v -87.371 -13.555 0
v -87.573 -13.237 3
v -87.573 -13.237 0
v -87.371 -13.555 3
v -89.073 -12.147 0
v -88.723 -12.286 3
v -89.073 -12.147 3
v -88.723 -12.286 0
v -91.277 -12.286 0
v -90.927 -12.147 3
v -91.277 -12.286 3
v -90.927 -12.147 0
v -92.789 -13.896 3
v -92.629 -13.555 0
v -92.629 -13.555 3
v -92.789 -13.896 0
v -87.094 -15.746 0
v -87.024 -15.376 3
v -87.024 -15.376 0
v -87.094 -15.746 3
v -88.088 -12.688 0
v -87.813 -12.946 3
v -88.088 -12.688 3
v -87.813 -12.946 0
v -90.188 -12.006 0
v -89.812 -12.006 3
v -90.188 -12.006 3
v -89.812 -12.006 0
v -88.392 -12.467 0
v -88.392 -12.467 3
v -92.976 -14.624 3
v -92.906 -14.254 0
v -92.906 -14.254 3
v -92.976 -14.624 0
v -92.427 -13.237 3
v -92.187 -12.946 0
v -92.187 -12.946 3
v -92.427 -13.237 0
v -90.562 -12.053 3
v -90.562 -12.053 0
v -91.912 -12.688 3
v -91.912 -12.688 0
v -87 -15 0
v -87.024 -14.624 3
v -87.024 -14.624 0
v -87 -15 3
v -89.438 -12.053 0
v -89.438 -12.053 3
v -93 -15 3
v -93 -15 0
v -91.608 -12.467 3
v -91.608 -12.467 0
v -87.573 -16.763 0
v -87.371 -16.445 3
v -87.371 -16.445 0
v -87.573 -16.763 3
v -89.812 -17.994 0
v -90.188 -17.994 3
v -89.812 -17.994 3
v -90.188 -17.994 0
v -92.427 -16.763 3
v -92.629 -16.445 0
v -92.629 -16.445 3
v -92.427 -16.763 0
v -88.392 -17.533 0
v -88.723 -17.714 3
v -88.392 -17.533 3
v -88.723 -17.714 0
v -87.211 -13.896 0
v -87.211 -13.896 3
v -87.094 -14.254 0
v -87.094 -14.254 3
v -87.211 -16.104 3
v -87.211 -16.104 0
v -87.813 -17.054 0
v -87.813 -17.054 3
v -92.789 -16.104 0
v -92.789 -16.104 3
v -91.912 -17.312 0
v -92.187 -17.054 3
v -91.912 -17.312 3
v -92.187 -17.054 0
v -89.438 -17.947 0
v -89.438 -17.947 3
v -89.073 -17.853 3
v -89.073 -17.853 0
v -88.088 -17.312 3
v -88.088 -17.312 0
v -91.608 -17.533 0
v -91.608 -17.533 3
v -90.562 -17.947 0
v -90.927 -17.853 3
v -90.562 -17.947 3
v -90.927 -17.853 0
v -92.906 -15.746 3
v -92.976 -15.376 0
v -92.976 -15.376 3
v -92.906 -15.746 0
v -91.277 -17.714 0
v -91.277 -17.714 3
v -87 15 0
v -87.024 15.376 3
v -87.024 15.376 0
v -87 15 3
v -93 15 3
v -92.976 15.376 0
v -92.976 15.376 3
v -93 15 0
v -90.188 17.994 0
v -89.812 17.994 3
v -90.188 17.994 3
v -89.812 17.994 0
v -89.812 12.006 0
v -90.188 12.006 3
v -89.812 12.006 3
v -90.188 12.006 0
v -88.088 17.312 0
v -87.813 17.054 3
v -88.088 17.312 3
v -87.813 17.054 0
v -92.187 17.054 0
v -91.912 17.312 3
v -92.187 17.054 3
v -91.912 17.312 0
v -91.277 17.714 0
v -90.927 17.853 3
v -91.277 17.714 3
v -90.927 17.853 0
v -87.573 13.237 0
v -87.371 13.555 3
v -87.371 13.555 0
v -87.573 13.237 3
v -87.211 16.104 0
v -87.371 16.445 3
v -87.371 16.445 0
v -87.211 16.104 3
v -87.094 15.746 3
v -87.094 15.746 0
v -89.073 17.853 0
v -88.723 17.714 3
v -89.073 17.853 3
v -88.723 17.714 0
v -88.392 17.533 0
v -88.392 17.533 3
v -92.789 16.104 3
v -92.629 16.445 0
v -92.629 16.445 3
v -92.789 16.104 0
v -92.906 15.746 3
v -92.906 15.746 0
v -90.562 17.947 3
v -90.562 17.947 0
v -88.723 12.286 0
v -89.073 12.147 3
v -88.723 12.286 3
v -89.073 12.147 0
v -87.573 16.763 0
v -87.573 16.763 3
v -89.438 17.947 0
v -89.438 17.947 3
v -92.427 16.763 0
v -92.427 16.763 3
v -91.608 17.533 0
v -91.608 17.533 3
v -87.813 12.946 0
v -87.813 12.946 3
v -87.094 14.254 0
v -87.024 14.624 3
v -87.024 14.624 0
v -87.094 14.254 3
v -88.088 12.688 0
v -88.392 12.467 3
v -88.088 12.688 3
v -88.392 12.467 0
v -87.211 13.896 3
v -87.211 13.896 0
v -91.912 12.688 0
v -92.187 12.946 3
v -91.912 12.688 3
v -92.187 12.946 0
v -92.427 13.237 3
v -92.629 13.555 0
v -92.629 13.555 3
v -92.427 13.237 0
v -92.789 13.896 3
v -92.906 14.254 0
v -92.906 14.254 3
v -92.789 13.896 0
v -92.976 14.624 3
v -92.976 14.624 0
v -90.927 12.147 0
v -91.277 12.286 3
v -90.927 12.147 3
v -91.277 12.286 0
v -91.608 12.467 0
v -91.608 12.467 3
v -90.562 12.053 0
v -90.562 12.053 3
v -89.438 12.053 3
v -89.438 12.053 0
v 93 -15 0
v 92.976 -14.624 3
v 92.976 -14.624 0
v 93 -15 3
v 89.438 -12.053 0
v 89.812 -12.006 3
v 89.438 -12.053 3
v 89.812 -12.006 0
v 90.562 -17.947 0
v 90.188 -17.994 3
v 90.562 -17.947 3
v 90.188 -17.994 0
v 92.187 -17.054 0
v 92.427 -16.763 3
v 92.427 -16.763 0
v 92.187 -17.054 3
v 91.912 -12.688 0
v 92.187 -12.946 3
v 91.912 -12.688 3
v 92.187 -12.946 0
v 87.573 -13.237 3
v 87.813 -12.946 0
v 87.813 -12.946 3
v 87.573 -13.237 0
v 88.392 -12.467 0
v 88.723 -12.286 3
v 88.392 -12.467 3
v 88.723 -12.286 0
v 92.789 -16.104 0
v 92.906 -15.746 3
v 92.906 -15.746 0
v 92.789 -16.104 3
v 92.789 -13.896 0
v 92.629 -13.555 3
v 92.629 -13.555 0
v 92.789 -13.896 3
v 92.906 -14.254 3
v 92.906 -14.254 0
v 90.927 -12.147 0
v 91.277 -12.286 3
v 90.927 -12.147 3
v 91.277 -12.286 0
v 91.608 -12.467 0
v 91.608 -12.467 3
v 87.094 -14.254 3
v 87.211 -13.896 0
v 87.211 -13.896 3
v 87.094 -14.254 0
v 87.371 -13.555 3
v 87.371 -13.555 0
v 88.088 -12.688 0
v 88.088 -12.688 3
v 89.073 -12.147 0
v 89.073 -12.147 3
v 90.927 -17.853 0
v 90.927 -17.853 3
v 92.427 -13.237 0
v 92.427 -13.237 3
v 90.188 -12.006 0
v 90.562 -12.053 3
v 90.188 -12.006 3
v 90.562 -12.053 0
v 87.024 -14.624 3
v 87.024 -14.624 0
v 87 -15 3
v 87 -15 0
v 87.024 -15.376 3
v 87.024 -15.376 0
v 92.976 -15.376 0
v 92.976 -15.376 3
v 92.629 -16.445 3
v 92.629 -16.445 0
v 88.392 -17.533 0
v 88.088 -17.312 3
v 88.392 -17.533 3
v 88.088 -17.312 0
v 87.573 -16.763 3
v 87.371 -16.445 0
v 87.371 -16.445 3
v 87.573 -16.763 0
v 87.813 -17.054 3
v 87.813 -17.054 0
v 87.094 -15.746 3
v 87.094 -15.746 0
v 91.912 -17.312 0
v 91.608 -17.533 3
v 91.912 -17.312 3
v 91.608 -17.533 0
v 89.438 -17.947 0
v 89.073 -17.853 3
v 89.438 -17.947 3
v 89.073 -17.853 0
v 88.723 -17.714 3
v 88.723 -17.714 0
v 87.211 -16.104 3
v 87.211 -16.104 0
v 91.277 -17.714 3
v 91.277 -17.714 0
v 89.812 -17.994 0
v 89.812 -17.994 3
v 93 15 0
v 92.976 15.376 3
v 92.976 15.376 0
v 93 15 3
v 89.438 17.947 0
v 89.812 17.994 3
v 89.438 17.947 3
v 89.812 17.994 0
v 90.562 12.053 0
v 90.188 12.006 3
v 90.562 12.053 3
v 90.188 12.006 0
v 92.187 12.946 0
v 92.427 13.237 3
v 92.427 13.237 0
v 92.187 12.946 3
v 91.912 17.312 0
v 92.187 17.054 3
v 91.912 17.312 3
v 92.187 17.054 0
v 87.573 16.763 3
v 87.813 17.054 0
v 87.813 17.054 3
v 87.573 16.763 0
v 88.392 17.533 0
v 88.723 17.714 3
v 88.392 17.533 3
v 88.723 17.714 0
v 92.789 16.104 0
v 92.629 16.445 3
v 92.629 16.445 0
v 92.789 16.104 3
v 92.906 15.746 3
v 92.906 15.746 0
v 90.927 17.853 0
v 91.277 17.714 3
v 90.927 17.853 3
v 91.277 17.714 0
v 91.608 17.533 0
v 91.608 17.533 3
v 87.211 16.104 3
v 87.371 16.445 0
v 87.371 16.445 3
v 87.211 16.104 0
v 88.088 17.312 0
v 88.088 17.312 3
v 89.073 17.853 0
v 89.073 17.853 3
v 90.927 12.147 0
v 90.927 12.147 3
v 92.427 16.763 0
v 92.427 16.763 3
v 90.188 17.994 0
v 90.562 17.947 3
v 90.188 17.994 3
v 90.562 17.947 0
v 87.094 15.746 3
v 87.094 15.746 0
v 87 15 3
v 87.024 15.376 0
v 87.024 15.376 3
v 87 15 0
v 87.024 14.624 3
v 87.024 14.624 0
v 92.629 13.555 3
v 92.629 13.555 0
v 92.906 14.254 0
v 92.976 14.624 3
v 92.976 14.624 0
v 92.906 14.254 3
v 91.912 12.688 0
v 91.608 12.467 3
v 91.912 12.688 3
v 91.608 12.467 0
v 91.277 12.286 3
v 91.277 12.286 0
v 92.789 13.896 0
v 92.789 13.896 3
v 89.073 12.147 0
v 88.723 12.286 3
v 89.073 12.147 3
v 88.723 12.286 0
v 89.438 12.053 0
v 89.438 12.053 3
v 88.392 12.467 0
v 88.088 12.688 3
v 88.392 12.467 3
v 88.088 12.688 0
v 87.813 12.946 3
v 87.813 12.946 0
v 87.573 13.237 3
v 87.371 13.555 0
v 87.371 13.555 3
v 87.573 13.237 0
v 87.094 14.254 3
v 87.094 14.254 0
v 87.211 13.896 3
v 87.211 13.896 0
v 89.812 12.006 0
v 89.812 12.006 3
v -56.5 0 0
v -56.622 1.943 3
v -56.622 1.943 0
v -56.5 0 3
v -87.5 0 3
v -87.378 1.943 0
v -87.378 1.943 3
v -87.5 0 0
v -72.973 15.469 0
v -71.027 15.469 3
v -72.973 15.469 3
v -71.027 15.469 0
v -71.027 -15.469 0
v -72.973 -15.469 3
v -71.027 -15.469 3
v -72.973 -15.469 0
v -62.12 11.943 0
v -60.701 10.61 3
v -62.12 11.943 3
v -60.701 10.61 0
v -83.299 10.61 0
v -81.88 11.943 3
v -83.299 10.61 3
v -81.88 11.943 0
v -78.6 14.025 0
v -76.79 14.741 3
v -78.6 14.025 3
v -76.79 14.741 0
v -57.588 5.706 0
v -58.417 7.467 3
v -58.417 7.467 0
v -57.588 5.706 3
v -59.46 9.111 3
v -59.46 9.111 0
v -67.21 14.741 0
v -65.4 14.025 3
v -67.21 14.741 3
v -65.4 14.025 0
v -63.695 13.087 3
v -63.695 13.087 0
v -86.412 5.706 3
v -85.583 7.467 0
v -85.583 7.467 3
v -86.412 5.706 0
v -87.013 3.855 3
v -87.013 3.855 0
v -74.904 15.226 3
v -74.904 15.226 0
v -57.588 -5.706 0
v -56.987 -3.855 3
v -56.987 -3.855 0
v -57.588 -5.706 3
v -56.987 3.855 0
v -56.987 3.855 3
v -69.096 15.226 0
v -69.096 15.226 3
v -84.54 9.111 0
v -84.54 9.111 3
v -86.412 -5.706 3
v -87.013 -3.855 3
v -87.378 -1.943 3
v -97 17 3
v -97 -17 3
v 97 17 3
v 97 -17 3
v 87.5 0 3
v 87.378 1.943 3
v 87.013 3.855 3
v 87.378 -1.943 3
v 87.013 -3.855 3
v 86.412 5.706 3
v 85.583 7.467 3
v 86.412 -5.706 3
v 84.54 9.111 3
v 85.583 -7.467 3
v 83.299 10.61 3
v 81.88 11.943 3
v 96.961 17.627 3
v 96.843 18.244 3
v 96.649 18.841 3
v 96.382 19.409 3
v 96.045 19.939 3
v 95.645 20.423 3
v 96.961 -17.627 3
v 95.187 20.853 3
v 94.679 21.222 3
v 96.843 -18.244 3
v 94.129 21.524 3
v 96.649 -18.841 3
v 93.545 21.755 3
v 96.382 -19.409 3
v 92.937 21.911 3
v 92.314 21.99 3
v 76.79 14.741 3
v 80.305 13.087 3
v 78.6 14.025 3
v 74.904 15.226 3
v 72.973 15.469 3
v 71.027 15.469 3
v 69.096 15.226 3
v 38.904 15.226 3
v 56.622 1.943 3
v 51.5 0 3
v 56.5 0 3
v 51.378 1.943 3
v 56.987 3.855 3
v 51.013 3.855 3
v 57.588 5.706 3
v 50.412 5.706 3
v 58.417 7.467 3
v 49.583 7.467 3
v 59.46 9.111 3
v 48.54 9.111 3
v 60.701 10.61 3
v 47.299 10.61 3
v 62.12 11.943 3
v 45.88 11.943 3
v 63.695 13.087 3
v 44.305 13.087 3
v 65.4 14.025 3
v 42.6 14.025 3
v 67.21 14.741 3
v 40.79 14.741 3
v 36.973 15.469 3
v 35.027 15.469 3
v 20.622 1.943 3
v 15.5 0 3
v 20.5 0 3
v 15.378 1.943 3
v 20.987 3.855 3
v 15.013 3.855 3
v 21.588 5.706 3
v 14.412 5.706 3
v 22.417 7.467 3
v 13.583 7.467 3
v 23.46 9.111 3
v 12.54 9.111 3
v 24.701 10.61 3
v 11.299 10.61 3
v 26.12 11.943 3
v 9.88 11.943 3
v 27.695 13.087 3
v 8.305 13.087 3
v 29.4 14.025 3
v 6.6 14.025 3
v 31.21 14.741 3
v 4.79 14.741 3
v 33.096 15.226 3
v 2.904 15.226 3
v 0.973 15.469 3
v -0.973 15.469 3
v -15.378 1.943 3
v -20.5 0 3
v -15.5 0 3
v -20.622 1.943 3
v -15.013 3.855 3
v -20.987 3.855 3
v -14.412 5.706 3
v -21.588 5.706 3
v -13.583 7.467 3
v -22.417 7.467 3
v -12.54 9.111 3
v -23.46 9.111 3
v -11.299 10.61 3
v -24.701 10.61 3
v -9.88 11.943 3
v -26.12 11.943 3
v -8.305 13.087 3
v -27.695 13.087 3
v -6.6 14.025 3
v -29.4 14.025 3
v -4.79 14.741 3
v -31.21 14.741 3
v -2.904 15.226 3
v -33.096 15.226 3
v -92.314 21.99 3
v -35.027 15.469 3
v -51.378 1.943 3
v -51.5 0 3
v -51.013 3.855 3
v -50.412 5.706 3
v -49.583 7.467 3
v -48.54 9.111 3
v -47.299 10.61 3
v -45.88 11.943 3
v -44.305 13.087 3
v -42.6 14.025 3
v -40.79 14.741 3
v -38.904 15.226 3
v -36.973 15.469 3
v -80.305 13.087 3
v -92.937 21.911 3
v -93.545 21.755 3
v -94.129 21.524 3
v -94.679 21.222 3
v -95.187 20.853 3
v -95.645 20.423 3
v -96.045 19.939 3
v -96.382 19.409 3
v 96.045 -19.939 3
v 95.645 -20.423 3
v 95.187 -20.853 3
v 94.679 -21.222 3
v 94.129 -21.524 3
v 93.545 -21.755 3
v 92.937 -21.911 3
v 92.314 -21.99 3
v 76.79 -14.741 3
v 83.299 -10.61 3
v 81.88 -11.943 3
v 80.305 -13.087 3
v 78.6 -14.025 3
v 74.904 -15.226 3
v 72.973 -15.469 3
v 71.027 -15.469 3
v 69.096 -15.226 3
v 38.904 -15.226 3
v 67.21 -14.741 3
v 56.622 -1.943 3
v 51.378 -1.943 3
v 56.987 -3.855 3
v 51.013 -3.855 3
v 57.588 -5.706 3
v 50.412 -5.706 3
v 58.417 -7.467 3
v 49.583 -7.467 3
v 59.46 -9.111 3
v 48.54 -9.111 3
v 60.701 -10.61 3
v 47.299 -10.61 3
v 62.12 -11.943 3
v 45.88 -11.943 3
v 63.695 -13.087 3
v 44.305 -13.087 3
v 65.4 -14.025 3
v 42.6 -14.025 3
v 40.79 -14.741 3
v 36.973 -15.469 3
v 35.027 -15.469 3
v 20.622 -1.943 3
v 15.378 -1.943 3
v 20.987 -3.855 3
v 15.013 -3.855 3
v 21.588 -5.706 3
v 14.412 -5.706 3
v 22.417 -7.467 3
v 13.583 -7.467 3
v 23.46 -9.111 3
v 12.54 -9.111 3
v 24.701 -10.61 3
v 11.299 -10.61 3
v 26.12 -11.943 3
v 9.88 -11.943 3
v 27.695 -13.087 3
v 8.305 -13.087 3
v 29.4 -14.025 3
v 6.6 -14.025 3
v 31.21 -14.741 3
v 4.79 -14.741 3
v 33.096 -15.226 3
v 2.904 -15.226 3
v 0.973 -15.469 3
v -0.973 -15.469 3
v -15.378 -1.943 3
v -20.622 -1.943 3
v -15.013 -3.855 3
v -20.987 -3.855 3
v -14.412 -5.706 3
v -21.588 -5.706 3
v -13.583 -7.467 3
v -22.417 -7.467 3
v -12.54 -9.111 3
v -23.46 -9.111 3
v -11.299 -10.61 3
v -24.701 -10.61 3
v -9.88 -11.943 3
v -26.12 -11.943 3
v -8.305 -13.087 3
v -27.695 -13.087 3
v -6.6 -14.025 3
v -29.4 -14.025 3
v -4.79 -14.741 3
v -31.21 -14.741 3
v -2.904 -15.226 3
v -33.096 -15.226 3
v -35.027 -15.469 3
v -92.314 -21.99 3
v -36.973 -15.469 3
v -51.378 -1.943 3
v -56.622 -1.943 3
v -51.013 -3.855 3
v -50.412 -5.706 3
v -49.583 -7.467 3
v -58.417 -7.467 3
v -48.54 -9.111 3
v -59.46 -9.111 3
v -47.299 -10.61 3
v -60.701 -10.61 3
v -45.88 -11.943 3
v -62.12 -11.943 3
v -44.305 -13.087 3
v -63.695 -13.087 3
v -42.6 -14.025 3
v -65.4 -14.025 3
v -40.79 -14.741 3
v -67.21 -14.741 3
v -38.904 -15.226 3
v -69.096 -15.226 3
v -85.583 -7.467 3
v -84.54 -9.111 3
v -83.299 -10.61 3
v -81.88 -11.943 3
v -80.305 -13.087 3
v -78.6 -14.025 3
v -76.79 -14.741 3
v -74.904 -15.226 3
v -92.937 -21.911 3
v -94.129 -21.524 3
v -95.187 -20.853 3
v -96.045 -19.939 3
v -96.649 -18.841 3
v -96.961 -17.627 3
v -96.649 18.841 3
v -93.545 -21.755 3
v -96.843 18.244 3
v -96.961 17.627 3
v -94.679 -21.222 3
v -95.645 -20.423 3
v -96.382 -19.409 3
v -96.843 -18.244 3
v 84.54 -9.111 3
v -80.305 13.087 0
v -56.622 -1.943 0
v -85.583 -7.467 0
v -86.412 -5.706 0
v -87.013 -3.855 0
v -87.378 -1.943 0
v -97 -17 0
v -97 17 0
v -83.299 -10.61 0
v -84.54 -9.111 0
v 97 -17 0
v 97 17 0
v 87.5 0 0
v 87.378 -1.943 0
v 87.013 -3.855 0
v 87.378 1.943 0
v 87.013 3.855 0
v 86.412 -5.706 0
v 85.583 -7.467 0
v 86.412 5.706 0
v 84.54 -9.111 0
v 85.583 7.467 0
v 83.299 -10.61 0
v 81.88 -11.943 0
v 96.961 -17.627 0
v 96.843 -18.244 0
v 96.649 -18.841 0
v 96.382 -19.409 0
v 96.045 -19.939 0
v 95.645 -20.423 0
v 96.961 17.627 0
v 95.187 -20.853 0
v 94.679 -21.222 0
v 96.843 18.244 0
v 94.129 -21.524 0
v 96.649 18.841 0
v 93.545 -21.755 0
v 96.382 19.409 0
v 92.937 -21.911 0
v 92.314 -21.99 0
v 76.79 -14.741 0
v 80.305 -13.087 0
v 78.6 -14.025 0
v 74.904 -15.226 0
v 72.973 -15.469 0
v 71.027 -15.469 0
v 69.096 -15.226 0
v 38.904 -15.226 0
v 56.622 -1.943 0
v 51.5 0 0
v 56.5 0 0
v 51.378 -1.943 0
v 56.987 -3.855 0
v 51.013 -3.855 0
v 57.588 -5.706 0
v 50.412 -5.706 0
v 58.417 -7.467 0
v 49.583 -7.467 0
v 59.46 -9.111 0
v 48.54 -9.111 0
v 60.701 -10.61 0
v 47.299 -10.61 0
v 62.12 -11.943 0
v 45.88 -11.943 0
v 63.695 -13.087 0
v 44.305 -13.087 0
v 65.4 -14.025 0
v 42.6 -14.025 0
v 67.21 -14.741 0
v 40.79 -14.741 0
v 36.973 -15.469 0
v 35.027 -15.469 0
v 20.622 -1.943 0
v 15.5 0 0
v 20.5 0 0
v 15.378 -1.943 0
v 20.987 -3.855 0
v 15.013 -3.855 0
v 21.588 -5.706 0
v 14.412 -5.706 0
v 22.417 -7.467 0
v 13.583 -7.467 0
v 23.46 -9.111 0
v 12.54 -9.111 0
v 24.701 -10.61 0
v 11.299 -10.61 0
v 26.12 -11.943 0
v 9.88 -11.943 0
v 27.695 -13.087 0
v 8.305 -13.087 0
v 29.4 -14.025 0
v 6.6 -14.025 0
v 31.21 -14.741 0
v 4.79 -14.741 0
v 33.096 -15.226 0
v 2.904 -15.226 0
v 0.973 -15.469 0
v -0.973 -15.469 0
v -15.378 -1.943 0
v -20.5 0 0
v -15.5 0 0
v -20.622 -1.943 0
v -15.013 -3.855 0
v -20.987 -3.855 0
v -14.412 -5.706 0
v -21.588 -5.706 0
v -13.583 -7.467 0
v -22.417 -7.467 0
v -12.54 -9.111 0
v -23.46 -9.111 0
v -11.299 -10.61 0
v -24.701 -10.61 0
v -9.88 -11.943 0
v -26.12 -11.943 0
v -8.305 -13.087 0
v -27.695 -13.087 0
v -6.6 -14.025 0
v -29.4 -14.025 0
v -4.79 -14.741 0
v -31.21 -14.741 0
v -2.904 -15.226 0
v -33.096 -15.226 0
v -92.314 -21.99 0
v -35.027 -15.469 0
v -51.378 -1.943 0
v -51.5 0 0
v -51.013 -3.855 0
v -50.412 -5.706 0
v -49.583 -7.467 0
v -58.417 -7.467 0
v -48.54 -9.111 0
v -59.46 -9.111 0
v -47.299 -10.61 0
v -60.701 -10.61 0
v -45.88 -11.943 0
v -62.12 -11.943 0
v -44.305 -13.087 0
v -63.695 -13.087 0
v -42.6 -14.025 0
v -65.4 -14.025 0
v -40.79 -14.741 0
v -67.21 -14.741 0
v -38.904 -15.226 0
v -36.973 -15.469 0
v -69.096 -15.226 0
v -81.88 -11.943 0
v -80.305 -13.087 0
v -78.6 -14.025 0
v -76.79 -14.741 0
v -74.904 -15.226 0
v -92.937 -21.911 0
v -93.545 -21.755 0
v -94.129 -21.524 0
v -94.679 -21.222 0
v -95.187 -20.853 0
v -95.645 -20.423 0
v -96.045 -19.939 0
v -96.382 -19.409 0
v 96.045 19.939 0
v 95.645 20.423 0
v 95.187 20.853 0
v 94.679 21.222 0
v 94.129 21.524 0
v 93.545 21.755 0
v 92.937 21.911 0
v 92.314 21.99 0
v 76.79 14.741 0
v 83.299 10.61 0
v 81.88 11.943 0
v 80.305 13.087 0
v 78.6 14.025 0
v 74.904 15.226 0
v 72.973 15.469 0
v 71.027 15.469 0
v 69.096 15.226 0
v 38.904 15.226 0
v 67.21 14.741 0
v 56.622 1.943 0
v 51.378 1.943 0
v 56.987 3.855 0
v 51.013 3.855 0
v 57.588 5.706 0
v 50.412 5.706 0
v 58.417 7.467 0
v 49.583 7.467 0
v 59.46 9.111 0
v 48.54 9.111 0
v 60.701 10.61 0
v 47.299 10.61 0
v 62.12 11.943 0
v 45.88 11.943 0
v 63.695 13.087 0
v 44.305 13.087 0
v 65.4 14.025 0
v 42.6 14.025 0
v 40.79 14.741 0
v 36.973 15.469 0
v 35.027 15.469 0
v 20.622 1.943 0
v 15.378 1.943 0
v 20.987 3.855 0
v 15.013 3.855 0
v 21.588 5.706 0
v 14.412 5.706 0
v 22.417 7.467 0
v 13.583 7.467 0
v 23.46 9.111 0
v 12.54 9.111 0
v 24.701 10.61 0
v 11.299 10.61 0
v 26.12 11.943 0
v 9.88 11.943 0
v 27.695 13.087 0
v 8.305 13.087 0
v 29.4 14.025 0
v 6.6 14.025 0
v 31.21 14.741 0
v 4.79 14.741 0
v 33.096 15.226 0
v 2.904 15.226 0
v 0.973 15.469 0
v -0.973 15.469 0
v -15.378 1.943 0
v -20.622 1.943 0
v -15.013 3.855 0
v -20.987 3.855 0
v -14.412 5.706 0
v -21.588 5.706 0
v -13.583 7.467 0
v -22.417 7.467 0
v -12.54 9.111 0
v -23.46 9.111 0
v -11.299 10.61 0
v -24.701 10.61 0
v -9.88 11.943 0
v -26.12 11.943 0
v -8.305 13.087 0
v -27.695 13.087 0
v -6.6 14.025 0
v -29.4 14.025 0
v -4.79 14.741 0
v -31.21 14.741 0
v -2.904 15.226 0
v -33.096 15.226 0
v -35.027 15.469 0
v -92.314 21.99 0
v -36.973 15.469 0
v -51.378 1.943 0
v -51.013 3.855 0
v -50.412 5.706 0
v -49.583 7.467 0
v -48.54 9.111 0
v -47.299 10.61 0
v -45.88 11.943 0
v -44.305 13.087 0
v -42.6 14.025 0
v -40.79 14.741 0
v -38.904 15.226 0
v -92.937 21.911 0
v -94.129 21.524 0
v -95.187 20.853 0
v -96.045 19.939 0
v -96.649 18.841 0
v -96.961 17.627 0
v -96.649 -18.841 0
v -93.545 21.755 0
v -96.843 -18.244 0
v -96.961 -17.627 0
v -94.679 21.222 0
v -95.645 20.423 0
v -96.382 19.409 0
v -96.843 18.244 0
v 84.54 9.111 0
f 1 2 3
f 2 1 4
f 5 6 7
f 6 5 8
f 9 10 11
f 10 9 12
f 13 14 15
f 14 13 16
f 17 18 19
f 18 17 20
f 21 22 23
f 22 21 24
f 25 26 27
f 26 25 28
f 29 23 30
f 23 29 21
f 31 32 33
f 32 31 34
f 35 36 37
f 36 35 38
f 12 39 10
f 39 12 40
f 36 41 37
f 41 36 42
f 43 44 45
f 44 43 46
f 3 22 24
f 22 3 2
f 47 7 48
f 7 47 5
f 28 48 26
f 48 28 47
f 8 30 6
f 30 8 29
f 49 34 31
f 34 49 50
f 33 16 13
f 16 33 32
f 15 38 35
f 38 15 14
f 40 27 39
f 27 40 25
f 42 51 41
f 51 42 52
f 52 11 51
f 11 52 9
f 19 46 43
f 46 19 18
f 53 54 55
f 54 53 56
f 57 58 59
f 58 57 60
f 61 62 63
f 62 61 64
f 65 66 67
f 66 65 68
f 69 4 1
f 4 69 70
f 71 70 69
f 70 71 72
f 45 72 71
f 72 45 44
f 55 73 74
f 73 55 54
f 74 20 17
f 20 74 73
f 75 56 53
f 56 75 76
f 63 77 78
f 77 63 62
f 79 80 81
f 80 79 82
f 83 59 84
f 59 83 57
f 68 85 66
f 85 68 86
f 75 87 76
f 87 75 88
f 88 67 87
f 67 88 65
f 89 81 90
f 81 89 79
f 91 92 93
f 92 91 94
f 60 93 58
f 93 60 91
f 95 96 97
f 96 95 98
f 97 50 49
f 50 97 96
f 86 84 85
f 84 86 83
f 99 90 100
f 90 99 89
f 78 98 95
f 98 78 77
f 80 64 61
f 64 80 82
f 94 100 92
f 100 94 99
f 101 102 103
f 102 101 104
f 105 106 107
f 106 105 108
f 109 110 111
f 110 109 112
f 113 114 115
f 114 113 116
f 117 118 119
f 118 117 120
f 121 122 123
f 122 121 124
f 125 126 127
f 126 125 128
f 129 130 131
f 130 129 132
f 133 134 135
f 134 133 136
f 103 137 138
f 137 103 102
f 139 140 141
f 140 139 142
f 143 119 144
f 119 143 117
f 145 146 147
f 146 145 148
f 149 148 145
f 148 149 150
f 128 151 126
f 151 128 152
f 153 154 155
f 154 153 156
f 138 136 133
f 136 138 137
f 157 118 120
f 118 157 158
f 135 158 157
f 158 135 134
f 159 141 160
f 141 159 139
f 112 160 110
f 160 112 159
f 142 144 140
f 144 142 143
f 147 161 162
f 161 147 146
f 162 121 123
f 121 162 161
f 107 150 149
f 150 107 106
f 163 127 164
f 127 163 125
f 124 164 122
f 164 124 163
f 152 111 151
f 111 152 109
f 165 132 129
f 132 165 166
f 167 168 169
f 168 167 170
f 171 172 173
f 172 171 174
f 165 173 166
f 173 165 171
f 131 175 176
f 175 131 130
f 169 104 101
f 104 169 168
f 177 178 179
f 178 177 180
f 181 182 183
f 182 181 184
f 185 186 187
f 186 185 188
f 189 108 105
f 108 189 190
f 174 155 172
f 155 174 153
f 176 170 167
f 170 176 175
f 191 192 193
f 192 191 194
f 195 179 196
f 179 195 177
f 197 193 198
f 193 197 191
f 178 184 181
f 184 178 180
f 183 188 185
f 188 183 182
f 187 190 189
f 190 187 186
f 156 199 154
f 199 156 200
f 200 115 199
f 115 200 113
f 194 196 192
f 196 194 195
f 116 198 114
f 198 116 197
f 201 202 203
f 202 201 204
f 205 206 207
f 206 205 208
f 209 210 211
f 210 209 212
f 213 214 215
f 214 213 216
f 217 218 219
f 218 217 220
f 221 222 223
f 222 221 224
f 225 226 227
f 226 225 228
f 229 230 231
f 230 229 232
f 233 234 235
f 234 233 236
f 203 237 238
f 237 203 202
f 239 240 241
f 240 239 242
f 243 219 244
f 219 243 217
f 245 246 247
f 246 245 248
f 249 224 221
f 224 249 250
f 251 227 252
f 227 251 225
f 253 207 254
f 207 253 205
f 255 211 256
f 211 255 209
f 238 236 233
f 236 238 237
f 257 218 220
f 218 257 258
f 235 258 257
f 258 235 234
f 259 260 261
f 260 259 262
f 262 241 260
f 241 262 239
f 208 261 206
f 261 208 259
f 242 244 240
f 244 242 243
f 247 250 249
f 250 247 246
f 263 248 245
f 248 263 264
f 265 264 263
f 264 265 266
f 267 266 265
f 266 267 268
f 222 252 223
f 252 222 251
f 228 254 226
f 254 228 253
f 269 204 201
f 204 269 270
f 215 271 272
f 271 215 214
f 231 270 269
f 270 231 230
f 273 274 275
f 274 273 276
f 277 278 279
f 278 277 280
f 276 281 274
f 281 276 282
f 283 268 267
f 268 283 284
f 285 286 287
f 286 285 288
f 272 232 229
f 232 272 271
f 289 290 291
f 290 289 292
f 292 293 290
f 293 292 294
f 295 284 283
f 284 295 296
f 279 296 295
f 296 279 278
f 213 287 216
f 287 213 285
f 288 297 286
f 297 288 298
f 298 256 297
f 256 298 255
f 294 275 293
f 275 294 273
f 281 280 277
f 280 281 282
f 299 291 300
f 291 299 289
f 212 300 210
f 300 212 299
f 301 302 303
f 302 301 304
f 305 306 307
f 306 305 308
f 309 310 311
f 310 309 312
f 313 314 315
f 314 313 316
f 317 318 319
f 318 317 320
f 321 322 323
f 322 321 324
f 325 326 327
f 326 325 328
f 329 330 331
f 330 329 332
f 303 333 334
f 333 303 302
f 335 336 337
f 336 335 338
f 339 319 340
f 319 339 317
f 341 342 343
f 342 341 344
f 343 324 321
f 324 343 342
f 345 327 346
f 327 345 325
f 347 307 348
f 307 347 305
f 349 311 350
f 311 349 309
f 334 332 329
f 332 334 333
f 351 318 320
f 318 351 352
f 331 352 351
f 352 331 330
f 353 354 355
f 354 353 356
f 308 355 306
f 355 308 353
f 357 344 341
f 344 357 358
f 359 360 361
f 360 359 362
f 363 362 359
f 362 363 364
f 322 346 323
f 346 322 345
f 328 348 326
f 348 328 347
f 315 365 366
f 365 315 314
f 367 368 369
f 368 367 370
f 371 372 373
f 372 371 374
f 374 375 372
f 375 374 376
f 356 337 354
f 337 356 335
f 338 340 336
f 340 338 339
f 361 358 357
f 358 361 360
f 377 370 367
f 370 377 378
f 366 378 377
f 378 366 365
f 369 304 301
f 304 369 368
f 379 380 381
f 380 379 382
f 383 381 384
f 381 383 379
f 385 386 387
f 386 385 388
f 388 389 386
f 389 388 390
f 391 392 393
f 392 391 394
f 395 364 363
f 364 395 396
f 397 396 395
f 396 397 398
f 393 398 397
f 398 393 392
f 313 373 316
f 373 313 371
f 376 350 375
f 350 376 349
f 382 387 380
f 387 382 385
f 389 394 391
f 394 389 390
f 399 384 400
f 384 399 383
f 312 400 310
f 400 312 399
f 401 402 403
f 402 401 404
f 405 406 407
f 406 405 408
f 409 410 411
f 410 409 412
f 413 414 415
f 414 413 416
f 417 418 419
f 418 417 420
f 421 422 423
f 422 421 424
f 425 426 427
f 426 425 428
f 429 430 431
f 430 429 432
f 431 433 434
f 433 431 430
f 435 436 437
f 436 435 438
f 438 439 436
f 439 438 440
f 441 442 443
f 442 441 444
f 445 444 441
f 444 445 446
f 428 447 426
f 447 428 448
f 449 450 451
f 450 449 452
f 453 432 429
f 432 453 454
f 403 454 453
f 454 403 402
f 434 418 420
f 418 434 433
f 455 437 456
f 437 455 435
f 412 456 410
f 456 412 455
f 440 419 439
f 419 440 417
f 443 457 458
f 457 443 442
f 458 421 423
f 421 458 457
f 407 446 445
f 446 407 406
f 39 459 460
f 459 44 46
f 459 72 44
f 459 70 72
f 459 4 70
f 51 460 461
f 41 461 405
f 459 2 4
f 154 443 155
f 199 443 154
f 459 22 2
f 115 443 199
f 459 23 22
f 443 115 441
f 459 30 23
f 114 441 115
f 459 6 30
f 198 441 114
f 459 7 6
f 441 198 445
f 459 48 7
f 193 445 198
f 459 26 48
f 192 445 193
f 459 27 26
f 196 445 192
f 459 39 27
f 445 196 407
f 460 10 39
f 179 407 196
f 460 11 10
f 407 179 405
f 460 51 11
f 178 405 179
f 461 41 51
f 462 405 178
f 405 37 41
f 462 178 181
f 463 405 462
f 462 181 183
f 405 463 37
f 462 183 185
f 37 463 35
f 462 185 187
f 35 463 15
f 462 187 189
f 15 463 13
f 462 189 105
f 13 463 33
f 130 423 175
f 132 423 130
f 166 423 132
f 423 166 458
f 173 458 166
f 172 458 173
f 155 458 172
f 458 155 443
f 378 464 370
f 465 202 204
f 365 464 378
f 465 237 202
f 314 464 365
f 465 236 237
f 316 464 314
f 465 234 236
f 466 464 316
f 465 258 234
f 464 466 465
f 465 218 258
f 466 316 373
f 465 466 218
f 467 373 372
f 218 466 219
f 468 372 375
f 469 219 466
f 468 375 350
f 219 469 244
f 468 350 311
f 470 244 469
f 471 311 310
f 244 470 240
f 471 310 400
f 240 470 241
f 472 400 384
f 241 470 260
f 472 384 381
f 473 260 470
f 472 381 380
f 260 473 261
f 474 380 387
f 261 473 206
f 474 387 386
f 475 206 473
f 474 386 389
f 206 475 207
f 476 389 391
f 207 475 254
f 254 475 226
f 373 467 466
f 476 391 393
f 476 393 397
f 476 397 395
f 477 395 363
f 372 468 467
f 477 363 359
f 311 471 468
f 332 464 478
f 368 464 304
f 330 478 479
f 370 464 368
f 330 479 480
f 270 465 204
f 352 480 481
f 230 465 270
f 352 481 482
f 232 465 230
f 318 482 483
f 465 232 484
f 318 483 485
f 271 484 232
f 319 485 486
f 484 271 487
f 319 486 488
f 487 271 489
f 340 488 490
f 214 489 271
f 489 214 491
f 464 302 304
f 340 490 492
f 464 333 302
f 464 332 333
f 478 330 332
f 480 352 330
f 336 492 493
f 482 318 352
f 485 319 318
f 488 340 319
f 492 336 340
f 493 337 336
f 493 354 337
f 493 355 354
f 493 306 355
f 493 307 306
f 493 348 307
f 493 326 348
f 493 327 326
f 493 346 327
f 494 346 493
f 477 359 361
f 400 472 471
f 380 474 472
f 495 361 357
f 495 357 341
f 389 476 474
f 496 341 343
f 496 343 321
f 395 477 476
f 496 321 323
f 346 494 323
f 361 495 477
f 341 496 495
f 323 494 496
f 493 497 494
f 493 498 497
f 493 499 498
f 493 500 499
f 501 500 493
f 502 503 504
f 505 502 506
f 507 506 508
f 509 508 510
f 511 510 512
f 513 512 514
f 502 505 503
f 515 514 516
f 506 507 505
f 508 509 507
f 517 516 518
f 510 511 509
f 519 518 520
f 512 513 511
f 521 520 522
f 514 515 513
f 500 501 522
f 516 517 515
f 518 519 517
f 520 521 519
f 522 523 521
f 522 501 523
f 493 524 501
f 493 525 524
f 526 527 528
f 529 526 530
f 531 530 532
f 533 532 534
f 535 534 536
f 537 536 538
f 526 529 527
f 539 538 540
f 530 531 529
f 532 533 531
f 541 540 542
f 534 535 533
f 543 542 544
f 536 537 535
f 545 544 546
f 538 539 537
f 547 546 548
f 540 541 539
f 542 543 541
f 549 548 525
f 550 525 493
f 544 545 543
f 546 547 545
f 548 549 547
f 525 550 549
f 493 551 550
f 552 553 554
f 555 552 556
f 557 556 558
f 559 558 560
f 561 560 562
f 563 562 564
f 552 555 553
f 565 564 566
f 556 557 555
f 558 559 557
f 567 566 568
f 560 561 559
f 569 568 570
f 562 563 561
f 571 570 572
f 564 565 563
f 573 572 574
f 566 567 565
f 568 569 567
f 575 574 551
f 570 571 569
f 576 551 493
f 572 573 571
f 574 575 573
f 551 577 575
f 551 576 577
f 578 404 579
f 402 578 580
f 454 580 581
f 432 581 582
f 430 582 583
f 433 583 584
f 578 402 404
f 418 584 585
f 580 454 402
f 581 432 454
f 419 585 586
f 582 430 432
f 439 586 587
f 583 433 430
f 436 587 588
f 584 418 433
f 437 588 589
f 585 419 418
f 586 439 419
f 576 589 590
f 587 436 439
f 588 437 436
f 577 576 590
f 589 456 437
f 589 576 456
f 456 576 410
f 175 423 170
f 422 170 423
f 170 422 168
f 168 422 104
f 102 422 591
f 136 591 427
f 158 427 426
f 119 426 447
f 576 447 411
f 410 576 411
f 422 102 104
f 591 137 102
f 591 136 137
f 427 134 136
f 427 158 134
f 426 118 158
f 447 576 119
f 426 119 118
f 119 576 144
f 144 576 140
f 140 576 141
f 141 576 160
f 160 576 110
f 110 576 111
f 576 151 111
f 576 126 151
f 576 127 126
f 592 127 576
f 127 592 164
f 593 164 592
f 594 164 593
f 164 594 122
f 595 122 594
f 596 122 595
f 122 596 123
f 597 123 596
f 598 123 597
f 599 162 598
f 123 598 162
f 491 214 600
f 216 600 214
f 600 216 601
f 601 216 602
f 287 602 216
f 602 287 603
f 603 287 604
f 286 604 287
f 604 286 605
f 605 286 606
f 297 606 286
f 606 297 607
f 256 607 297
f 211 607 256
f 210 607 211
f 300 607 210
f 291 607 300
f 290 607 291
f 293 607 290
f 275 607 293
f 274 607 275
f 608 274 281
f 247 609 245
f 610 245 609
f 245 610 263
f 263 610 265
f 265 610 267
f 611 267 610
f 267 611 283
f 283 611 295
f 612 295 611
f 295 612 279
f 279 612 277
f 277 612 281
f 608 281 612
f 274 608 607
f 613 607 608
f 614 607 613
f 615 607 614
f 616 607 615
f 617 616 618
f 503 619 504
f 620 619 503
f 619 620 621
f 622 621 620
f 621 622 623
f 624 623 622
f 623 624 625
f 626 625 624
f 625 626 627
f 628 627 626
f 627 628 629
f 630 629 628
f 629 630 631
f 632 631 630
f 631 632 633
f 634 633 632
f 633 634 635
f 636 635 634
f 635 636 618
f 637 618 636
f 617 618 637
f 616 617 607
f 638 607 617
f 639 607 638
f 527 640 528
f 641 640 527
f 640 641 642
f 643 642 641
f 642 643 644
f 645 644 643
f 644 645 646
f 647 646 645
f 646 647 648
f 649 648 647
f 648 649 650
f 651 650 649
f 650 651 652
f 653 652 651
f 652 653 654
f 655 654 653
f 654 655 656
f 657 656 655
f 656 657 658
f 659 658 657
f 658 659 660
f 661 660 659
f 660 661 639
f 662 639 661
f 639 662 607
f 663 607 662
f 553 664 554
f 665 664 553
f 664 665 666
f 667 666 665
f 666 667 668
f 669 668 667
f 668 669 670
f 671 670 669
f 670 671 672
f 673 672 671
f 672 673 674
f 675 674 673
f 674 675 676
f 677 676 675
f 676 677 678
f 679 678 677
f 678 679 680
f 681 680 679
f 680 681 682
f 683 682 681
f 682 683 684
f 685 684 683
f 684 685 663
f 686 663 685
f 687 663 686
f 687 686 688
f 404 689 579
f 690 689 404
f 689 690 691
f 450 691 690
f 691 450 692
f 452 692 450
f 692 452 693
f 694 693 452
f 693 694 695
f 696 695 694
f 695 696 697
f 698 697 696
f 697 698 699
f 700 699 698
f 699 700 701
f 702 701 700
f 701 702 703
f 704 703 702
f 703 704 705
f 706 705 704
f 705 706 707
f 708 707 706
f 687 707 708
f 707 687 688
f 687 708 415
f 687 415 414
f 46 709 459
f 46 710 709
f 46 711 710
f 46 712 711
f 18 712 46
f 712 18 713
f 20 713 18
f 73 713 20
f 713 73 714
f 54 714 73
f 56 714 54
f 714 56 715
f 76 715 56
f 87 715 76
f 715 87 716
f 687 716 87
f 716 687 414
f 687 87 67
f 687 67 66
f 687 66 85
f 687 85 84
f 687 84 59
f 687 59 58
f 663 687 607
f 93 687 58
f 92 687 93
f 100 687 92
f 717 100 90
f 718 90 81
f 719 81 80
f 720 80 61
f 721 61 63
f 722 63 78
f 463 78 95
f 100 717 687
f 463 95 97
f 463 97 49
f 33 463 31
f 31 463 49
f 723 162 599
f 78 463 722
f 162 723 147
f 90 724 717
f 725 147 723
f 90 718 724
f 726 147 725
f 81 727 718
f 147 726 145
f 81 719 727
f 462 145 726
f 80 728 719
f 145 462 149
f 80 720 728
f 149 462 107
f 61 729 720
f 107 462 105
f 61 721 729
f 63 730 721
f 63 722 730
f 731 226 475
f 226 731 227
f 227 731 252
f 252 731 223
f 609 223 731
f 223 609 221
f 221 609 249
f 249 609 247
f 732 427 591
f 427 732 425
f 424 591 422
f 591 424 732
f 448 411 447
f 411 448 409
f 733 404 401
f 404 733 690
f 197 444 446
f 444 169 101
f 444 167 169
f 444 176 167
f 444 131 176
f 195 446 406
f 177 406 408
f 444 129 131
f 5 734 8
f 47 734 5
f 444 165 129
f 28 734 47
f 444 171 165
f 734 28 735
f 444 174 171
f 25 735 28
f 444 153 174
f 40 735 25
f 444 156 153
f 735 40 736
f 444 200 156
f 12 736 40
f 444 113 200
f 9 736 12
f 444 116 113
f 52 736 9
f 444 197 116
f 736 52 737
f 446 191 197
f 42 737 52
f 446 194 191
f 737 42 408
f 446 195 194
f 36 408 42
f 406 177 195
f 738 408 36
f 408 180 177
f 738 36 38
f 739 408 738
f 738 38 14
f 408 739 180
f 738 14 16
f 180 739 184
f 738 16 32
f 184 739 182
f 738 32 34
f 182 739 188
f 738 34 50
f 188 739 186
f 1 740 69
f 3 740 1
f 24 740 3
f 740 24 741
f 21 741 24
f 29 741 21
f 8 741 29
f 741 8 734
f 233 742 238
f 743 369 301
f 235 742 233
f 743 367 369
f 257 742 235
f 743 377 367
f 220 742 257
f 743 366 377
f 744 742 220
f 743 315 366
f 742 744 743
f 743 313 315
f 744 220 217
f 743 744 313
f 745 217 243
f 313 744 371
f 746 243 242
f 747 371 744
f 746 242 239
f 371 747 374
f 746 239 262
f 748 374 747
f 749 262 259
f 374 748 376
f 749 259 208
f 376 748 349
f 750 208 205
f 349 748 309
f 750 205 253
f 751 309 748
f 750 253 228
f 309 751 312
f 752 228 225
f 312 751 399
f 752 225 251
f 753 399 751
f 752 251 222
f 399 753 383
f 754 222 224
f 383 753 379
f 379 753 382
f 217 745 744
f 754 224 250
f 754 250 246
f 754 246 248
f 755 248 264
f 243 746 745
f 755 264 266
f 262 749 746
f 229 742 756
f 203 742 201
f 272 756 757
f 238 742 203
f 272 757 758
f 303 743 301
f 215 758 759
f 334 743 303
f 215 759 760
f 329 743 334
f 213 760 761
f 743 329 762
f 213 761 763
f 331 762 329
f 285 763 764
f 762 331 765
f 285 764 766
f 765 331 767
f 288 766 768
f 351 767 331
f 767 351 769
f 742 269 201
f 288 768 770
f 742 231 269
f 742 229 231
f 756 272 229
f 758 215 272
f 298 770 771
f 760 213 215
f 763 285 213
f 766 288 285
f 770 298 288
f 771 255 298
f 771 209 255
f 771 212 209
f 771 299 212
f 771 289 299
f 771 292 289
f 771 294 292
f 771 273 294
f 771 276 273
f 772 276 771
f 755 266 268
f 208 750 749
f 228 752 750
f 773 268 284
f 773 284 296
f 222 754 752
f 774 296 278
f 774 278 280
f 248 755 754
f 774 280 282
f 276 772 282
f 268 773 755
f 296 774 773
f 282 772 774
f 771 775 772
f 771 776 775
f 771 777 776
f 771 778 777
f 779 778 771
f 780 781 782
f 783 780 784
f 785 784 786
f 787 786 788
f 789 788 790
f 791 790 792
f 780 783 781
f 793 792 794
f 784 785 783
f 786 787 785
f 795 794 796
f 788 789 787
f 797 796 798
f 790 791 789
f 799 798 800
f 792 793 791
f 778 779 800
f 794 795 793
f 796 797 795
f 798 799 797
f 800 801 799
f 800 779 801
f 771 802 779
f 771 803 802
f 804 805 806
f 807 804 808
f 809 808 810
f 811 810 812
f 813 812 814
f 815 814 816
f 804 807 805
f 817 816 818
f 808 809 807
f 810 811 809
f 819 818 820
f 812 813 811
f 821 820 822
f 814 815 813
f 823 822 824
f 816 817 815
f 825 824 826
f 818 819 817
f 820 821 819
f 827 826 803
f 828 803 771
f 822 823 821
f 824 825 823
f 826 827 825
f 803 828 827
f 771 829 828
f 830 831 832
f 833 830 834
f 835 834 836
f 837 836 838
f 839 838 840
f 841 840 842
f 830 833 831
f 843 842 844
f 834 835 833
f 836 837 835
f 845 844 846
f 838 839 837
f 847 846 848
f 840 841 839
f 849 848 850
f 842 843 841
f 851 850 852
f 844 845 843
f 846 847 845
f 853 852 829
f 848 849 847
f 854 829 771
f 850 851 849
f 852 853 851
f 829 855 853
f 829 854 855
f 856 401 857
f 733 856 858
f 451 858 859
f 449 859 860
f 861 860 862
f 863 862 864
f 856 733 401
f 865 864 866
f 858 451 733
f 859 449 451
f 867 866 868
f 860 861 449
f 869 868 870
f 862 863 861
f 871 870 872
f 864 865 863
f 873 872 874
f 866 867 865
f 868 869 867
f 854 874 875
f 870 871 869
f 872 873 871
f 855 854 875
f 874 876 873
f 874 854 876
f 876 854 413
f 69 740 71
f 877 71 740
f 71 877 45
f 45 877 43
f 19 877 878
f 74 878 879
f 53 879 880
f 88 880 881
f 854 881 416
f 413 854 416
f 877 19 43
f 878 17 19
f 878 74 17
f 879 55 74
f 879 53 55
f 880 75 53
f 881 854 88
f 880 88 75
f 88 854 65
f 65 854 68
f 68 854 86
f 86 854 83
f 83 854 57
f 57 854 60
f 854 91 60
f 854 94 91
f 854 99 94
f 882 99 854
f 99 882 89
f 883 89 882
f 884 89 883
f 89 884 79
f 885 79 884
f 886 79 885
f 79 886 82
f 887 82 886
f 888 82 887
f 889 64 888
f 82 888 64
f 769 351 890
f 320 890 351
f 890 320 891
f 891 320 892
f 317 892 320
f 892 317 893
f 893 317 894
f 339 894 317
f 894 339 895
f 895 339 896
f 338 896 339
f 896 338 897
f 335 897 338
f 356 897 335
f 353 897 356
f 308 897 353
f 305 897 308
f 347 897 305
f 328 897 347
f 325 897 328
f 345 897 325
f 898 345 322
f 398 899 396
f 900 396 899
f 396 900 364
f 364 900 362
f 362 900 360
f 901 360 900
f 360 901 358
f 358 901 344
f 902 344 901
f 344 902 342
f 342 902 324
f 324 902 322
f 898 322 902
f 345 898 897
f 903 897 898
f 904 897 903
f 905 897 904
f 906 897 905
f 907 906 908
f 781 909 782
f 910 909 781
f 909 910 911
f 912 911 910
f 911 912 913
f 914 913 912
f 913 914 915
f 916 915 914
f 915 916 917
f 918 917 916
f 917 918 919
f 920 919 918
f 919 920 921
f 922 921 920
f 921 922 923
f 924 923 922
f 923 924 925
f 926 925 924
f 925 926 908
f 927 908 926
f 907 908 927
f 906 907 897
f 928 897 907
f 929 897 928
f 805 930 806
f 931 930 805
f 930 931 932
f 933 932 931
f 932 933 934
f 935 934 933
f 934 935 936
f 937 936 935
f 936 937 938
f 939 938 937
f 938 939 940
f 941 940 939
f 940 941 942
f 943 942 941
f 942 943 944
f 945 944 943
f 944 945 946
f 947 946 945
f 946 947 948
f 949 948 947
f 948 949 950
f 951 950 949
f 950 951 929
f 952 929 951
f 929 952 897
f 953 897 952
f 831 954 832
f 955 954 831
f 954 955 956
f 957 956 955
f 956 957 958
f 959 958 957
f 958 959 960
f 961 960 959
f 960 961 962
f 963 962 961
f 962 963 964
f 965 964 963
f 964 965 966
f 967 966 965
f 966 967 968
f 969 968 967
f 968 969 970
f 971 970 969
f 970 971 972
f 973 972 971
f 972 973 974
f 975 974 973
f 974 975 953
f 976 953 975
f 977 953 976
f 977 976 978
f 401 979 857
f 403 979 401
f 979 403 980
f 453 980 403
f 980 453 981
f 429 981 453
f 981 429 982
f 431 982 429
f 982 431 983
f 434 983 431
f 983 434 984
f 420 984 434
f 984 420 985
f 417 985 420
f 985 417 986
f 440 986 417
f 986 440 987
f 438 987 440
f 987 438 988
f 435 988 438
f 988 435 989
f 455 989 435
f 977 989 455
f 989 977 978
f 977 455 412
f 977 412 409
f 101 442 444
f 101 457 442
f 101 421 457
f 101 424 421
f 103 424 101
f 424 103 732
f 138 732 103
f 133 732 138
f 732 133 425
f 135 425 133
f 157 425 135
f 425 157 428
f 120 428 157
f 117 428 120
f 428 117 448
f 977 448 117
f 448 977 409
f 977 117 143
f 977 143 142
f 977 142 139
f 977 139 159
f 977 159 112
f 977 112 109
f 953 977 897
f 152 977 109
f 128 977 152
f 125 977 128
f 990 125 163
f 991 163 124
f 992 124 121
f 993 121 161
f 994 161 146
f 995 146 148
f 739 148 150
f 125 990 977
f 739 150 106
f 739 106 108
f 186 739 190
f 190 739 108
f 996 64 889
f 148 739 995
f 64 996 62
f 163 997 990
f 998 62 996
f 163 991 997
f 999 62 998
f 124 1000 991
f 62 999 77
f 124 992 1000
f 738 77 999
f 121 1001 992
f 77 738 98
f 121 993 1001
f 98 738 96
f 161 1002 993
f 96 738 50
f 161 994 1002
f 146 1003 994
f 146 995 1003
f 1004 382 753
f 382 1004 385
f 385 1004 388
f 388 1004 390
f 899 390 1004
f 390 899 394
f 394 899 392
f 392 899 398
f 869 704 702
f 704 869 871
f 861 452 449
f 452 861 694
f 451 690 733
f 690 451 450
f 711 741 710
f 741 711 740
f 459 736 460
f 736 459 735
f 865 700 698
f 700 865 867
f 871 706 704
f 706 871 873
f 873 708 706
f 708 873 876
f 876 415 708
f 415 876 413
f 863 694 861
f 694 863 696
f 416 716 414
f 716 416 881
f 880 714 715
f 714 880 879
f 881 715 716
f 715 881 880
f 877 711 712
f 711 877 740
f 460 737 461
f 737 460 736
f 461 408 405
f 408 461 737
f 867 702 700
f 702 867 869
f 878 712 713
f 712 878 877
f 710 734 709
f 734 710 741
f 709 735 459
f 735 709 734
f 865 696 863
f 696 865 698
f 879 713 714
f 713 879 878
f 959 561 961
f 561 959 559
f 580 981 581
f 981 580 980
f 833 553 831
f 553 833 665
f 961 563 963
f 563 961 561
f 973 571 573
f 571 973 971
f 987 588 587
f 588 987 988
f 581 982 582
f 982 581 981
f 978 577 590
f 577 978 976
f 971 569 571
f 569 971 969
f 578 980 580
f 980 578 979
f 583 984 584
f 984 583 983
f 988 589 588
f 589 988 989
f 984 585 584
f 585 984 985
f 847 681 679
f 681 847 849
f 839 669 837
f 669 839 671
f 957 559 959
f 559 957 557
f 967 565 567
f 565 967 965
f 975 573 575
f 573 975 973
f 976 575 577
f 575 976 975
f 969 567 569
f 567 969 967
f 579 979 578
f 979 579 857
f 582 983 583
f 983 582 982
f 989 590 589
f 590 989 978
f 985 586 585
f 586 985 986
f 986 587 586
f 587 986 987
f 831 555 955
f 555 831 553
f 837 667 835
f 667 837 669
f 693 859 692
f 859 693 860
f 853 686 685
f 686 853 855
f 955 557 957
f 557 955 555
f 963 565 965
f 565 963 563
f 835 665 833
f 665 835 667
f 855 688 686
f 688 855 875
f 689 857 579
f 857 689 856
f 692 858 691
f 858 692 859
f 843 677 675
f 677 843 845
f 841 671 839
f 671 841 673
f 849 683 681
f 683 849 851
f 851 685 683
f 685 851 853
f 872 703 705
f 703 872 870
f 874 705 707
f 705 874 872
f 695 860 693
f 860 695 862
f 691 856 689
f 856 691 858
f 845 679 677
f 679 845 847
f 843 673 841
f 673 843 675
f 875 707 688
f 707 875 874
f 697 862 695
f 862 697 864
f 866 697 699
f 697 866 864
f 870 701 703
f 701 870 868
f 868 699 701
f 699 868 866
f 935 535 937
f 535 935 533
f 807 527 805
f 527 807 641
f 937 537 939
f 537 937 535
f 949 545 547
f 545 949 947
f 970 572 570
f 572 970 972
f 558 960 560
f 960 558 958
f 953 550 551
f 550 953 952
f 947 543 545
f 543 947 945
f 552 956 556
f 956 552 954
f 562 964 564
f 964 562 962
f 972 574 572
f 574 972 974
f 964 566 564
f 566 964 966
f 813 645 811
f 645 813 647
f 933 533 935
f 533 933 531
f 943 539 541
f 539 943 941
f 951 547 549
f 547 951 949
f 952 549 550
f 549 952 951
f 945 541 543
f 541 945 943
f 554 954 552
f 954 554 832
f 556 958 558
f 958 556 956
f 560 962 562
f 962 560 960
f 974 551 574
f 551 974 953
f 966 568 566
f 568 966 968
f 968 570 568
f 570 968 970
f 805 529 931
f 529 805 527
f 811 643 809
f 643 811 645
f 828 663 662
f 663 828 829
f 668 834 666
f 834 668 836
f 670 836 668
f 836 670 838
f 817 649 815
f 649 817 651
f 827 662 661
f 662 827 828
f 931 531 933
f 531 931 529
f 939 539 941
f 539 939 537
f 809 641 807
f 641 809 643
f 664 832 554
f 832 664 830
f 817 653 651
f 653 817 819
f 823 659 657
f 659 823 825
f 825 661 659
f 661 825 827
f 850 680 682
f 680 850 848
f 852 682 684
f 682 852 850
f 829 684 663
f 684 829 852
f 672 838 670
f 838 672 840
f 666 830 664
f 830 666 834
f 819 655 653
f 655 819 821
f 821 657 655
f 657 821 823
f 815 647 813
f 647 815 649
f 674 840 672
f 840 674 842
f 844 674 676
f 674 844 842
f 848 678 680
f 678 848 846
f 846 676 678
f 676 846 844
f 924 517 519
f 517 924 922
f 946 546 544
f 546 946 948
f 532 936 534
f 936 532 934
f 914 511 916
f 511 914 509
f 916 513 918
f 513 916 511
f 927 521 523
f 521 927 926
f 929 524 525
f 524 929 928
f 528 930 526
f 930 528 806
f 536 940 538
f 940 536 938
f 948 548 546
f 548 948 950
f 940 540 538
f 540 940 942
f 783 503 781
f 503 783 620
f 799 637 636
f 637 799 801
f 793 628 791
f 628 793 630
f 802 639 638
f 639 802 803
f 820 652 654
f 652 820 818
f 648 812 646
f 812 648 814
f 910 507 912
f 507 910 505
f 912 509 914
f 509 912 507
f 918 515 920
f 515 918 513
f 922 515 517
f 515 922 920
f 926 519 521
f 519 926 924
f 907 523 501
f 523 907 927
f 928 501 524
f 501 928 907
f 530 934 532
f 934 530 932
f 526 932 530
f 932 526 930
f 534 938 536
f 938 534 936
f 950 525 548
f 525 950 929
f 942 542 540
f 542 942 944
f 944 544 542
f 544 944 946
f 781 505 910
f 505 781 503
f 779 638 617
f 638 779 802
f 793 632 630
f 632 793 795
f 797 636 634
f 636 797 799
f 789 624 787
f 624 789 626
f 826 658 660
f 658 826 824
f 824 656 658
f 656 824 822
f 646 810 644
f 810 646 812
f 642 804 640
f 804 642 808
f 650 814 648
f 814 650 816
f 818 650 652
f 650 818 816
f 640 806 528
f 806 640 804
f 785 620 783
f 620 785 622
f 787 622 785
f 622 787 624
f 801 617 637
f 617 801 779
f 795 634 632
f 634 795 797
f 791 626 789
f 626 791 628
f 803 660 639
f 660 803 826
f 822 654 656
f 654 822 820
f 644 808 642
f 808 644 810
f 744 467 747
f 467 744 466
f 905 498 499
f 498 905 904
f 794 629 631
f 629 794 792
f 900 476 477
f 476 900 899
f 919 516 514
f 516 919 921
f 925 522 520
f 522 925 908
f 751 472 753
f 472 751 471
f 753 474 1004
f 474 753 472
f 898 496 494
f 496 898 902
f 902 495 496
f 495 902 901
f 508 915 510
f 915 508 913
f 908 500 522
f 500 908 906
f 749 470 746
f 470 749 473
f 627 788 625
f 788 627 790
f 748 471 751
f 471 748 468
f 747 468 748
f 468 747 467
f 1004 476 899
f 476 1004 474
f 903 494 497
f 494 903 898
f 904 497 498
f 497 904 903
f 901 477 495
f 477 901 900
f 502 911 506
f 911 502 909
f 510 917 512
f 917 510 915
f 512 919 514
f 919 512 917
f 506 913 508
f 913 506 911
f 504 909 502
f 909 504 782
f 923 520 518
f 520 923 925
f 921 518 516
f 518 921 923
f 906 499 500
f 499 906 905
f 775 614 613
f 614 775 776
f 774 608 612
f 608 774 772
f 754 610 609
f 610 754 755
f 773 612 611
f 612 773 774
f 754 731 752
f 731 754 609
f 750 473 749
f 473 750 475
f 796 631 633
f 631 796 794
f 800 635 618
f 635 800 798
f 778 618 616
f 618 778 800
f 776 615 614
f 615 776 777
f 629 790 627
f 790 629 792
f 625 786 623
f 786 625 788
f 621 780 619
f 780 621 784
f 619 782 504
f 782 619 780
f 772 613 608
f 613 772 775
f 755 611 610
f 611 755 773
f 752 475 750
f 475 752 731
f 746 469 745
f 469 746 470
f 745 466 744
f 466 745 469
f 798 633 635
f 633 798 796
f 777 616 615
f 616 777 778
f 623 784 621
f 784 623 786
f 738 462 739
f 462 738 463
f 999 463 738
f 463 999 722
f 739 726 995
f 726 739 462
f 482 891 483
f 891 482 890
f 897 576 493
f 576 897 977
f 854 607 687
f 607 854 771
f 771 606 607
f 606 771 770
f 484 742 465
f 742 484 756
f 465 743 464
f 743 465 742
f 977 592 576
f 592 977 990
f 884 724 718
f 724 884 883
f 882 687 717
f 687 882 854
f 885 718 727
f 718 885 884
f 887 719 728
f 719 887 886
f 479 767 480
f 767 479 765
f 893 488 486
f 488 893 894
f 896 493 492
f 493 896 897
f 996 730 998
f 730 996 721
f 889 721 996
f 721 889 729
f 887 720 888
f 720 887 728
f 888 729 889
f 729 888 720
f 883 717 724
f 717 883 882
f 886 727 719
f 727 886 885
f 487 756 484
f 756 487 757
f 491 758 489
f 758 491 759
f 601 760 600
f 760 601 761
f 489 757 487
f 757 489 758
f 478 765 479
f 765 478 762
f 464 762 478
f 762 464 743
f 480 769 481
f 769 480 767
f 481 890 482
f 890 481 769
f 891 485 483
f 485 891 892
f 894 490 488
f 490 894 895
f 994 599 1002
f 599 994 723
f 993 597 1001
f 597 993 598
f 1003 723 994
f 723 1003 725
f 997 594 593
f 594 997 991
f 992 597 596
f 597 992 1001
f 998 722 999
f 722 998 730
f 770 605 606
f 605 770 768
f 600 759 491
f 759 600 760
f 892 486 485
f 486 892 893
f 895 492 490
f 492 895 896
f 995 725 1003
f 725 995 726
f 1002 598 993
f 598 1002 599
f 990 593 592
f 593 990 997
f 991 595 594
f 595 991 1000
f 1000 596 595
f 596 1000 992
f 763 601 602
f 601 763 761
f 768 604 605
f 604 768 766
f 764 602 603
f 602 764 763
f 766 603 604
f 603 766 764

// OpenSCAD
$fn = 50;


difference() {
	union() {
		hull() {
			translate(v = [-92.0000000000, 17.0000000000, 0]) {
				cylinder(h = 3, r = 5);
			}
			translate(v = [92.0000000000, 17.0000000000, 0]) {
				cylinder(h = 3, r = 5);
			}
			translate(v = [-92.0000000000, -17.0000000000, 0]) {
				cylinder(h = 3, r = 5);
			}
			translate(v = [92.0000000000, -17.0000000000, 0]) {
				cylinder(h = 3, r = 5);
			}
		}
	}
	union() {
		#translate(v = [-90.0000000000, -15.0000000000, -100.0000000000]) {
			cylinder(h = 200, r = 3.0000000000);
		}
		#translate(v = [-90.0000000000, 15.0000000000, -100.0000000000]) {
			cylinder(h = 200, r = 3.0000000000);
		}
		#translate(v = [90.0000000000, -15.0000000000, -100.0000000000]) {
			cylinder(h = 200, r = 3.0000000000);
		}
		#translate(v = [90.0000000000, 15.0000000000, -100.0000000000]) {
			cylinder(h = 200, r = 3.0000000000);
		}
		#translate(v = [-72.0000000000, 0, 0]) {
			cylinder(h = 3, r = 15.5000000000);
		}
		#translate(v = [-36.0000000000, 0, 0]) {
			cylinder(h = 3, r = 15.5000000000);
		}
		#cylinder(h = 3, r = 15.5000000000);
		#translate(v = [36.0000000000, 0, 0]) {
			cylinder(h = 3, r = 15.5000000000);
		}
		#translate(v = [72.0000000000, 0, 0]) {
			cylinder(h = 3, r = 15.5000000000);
		}
	}
}
